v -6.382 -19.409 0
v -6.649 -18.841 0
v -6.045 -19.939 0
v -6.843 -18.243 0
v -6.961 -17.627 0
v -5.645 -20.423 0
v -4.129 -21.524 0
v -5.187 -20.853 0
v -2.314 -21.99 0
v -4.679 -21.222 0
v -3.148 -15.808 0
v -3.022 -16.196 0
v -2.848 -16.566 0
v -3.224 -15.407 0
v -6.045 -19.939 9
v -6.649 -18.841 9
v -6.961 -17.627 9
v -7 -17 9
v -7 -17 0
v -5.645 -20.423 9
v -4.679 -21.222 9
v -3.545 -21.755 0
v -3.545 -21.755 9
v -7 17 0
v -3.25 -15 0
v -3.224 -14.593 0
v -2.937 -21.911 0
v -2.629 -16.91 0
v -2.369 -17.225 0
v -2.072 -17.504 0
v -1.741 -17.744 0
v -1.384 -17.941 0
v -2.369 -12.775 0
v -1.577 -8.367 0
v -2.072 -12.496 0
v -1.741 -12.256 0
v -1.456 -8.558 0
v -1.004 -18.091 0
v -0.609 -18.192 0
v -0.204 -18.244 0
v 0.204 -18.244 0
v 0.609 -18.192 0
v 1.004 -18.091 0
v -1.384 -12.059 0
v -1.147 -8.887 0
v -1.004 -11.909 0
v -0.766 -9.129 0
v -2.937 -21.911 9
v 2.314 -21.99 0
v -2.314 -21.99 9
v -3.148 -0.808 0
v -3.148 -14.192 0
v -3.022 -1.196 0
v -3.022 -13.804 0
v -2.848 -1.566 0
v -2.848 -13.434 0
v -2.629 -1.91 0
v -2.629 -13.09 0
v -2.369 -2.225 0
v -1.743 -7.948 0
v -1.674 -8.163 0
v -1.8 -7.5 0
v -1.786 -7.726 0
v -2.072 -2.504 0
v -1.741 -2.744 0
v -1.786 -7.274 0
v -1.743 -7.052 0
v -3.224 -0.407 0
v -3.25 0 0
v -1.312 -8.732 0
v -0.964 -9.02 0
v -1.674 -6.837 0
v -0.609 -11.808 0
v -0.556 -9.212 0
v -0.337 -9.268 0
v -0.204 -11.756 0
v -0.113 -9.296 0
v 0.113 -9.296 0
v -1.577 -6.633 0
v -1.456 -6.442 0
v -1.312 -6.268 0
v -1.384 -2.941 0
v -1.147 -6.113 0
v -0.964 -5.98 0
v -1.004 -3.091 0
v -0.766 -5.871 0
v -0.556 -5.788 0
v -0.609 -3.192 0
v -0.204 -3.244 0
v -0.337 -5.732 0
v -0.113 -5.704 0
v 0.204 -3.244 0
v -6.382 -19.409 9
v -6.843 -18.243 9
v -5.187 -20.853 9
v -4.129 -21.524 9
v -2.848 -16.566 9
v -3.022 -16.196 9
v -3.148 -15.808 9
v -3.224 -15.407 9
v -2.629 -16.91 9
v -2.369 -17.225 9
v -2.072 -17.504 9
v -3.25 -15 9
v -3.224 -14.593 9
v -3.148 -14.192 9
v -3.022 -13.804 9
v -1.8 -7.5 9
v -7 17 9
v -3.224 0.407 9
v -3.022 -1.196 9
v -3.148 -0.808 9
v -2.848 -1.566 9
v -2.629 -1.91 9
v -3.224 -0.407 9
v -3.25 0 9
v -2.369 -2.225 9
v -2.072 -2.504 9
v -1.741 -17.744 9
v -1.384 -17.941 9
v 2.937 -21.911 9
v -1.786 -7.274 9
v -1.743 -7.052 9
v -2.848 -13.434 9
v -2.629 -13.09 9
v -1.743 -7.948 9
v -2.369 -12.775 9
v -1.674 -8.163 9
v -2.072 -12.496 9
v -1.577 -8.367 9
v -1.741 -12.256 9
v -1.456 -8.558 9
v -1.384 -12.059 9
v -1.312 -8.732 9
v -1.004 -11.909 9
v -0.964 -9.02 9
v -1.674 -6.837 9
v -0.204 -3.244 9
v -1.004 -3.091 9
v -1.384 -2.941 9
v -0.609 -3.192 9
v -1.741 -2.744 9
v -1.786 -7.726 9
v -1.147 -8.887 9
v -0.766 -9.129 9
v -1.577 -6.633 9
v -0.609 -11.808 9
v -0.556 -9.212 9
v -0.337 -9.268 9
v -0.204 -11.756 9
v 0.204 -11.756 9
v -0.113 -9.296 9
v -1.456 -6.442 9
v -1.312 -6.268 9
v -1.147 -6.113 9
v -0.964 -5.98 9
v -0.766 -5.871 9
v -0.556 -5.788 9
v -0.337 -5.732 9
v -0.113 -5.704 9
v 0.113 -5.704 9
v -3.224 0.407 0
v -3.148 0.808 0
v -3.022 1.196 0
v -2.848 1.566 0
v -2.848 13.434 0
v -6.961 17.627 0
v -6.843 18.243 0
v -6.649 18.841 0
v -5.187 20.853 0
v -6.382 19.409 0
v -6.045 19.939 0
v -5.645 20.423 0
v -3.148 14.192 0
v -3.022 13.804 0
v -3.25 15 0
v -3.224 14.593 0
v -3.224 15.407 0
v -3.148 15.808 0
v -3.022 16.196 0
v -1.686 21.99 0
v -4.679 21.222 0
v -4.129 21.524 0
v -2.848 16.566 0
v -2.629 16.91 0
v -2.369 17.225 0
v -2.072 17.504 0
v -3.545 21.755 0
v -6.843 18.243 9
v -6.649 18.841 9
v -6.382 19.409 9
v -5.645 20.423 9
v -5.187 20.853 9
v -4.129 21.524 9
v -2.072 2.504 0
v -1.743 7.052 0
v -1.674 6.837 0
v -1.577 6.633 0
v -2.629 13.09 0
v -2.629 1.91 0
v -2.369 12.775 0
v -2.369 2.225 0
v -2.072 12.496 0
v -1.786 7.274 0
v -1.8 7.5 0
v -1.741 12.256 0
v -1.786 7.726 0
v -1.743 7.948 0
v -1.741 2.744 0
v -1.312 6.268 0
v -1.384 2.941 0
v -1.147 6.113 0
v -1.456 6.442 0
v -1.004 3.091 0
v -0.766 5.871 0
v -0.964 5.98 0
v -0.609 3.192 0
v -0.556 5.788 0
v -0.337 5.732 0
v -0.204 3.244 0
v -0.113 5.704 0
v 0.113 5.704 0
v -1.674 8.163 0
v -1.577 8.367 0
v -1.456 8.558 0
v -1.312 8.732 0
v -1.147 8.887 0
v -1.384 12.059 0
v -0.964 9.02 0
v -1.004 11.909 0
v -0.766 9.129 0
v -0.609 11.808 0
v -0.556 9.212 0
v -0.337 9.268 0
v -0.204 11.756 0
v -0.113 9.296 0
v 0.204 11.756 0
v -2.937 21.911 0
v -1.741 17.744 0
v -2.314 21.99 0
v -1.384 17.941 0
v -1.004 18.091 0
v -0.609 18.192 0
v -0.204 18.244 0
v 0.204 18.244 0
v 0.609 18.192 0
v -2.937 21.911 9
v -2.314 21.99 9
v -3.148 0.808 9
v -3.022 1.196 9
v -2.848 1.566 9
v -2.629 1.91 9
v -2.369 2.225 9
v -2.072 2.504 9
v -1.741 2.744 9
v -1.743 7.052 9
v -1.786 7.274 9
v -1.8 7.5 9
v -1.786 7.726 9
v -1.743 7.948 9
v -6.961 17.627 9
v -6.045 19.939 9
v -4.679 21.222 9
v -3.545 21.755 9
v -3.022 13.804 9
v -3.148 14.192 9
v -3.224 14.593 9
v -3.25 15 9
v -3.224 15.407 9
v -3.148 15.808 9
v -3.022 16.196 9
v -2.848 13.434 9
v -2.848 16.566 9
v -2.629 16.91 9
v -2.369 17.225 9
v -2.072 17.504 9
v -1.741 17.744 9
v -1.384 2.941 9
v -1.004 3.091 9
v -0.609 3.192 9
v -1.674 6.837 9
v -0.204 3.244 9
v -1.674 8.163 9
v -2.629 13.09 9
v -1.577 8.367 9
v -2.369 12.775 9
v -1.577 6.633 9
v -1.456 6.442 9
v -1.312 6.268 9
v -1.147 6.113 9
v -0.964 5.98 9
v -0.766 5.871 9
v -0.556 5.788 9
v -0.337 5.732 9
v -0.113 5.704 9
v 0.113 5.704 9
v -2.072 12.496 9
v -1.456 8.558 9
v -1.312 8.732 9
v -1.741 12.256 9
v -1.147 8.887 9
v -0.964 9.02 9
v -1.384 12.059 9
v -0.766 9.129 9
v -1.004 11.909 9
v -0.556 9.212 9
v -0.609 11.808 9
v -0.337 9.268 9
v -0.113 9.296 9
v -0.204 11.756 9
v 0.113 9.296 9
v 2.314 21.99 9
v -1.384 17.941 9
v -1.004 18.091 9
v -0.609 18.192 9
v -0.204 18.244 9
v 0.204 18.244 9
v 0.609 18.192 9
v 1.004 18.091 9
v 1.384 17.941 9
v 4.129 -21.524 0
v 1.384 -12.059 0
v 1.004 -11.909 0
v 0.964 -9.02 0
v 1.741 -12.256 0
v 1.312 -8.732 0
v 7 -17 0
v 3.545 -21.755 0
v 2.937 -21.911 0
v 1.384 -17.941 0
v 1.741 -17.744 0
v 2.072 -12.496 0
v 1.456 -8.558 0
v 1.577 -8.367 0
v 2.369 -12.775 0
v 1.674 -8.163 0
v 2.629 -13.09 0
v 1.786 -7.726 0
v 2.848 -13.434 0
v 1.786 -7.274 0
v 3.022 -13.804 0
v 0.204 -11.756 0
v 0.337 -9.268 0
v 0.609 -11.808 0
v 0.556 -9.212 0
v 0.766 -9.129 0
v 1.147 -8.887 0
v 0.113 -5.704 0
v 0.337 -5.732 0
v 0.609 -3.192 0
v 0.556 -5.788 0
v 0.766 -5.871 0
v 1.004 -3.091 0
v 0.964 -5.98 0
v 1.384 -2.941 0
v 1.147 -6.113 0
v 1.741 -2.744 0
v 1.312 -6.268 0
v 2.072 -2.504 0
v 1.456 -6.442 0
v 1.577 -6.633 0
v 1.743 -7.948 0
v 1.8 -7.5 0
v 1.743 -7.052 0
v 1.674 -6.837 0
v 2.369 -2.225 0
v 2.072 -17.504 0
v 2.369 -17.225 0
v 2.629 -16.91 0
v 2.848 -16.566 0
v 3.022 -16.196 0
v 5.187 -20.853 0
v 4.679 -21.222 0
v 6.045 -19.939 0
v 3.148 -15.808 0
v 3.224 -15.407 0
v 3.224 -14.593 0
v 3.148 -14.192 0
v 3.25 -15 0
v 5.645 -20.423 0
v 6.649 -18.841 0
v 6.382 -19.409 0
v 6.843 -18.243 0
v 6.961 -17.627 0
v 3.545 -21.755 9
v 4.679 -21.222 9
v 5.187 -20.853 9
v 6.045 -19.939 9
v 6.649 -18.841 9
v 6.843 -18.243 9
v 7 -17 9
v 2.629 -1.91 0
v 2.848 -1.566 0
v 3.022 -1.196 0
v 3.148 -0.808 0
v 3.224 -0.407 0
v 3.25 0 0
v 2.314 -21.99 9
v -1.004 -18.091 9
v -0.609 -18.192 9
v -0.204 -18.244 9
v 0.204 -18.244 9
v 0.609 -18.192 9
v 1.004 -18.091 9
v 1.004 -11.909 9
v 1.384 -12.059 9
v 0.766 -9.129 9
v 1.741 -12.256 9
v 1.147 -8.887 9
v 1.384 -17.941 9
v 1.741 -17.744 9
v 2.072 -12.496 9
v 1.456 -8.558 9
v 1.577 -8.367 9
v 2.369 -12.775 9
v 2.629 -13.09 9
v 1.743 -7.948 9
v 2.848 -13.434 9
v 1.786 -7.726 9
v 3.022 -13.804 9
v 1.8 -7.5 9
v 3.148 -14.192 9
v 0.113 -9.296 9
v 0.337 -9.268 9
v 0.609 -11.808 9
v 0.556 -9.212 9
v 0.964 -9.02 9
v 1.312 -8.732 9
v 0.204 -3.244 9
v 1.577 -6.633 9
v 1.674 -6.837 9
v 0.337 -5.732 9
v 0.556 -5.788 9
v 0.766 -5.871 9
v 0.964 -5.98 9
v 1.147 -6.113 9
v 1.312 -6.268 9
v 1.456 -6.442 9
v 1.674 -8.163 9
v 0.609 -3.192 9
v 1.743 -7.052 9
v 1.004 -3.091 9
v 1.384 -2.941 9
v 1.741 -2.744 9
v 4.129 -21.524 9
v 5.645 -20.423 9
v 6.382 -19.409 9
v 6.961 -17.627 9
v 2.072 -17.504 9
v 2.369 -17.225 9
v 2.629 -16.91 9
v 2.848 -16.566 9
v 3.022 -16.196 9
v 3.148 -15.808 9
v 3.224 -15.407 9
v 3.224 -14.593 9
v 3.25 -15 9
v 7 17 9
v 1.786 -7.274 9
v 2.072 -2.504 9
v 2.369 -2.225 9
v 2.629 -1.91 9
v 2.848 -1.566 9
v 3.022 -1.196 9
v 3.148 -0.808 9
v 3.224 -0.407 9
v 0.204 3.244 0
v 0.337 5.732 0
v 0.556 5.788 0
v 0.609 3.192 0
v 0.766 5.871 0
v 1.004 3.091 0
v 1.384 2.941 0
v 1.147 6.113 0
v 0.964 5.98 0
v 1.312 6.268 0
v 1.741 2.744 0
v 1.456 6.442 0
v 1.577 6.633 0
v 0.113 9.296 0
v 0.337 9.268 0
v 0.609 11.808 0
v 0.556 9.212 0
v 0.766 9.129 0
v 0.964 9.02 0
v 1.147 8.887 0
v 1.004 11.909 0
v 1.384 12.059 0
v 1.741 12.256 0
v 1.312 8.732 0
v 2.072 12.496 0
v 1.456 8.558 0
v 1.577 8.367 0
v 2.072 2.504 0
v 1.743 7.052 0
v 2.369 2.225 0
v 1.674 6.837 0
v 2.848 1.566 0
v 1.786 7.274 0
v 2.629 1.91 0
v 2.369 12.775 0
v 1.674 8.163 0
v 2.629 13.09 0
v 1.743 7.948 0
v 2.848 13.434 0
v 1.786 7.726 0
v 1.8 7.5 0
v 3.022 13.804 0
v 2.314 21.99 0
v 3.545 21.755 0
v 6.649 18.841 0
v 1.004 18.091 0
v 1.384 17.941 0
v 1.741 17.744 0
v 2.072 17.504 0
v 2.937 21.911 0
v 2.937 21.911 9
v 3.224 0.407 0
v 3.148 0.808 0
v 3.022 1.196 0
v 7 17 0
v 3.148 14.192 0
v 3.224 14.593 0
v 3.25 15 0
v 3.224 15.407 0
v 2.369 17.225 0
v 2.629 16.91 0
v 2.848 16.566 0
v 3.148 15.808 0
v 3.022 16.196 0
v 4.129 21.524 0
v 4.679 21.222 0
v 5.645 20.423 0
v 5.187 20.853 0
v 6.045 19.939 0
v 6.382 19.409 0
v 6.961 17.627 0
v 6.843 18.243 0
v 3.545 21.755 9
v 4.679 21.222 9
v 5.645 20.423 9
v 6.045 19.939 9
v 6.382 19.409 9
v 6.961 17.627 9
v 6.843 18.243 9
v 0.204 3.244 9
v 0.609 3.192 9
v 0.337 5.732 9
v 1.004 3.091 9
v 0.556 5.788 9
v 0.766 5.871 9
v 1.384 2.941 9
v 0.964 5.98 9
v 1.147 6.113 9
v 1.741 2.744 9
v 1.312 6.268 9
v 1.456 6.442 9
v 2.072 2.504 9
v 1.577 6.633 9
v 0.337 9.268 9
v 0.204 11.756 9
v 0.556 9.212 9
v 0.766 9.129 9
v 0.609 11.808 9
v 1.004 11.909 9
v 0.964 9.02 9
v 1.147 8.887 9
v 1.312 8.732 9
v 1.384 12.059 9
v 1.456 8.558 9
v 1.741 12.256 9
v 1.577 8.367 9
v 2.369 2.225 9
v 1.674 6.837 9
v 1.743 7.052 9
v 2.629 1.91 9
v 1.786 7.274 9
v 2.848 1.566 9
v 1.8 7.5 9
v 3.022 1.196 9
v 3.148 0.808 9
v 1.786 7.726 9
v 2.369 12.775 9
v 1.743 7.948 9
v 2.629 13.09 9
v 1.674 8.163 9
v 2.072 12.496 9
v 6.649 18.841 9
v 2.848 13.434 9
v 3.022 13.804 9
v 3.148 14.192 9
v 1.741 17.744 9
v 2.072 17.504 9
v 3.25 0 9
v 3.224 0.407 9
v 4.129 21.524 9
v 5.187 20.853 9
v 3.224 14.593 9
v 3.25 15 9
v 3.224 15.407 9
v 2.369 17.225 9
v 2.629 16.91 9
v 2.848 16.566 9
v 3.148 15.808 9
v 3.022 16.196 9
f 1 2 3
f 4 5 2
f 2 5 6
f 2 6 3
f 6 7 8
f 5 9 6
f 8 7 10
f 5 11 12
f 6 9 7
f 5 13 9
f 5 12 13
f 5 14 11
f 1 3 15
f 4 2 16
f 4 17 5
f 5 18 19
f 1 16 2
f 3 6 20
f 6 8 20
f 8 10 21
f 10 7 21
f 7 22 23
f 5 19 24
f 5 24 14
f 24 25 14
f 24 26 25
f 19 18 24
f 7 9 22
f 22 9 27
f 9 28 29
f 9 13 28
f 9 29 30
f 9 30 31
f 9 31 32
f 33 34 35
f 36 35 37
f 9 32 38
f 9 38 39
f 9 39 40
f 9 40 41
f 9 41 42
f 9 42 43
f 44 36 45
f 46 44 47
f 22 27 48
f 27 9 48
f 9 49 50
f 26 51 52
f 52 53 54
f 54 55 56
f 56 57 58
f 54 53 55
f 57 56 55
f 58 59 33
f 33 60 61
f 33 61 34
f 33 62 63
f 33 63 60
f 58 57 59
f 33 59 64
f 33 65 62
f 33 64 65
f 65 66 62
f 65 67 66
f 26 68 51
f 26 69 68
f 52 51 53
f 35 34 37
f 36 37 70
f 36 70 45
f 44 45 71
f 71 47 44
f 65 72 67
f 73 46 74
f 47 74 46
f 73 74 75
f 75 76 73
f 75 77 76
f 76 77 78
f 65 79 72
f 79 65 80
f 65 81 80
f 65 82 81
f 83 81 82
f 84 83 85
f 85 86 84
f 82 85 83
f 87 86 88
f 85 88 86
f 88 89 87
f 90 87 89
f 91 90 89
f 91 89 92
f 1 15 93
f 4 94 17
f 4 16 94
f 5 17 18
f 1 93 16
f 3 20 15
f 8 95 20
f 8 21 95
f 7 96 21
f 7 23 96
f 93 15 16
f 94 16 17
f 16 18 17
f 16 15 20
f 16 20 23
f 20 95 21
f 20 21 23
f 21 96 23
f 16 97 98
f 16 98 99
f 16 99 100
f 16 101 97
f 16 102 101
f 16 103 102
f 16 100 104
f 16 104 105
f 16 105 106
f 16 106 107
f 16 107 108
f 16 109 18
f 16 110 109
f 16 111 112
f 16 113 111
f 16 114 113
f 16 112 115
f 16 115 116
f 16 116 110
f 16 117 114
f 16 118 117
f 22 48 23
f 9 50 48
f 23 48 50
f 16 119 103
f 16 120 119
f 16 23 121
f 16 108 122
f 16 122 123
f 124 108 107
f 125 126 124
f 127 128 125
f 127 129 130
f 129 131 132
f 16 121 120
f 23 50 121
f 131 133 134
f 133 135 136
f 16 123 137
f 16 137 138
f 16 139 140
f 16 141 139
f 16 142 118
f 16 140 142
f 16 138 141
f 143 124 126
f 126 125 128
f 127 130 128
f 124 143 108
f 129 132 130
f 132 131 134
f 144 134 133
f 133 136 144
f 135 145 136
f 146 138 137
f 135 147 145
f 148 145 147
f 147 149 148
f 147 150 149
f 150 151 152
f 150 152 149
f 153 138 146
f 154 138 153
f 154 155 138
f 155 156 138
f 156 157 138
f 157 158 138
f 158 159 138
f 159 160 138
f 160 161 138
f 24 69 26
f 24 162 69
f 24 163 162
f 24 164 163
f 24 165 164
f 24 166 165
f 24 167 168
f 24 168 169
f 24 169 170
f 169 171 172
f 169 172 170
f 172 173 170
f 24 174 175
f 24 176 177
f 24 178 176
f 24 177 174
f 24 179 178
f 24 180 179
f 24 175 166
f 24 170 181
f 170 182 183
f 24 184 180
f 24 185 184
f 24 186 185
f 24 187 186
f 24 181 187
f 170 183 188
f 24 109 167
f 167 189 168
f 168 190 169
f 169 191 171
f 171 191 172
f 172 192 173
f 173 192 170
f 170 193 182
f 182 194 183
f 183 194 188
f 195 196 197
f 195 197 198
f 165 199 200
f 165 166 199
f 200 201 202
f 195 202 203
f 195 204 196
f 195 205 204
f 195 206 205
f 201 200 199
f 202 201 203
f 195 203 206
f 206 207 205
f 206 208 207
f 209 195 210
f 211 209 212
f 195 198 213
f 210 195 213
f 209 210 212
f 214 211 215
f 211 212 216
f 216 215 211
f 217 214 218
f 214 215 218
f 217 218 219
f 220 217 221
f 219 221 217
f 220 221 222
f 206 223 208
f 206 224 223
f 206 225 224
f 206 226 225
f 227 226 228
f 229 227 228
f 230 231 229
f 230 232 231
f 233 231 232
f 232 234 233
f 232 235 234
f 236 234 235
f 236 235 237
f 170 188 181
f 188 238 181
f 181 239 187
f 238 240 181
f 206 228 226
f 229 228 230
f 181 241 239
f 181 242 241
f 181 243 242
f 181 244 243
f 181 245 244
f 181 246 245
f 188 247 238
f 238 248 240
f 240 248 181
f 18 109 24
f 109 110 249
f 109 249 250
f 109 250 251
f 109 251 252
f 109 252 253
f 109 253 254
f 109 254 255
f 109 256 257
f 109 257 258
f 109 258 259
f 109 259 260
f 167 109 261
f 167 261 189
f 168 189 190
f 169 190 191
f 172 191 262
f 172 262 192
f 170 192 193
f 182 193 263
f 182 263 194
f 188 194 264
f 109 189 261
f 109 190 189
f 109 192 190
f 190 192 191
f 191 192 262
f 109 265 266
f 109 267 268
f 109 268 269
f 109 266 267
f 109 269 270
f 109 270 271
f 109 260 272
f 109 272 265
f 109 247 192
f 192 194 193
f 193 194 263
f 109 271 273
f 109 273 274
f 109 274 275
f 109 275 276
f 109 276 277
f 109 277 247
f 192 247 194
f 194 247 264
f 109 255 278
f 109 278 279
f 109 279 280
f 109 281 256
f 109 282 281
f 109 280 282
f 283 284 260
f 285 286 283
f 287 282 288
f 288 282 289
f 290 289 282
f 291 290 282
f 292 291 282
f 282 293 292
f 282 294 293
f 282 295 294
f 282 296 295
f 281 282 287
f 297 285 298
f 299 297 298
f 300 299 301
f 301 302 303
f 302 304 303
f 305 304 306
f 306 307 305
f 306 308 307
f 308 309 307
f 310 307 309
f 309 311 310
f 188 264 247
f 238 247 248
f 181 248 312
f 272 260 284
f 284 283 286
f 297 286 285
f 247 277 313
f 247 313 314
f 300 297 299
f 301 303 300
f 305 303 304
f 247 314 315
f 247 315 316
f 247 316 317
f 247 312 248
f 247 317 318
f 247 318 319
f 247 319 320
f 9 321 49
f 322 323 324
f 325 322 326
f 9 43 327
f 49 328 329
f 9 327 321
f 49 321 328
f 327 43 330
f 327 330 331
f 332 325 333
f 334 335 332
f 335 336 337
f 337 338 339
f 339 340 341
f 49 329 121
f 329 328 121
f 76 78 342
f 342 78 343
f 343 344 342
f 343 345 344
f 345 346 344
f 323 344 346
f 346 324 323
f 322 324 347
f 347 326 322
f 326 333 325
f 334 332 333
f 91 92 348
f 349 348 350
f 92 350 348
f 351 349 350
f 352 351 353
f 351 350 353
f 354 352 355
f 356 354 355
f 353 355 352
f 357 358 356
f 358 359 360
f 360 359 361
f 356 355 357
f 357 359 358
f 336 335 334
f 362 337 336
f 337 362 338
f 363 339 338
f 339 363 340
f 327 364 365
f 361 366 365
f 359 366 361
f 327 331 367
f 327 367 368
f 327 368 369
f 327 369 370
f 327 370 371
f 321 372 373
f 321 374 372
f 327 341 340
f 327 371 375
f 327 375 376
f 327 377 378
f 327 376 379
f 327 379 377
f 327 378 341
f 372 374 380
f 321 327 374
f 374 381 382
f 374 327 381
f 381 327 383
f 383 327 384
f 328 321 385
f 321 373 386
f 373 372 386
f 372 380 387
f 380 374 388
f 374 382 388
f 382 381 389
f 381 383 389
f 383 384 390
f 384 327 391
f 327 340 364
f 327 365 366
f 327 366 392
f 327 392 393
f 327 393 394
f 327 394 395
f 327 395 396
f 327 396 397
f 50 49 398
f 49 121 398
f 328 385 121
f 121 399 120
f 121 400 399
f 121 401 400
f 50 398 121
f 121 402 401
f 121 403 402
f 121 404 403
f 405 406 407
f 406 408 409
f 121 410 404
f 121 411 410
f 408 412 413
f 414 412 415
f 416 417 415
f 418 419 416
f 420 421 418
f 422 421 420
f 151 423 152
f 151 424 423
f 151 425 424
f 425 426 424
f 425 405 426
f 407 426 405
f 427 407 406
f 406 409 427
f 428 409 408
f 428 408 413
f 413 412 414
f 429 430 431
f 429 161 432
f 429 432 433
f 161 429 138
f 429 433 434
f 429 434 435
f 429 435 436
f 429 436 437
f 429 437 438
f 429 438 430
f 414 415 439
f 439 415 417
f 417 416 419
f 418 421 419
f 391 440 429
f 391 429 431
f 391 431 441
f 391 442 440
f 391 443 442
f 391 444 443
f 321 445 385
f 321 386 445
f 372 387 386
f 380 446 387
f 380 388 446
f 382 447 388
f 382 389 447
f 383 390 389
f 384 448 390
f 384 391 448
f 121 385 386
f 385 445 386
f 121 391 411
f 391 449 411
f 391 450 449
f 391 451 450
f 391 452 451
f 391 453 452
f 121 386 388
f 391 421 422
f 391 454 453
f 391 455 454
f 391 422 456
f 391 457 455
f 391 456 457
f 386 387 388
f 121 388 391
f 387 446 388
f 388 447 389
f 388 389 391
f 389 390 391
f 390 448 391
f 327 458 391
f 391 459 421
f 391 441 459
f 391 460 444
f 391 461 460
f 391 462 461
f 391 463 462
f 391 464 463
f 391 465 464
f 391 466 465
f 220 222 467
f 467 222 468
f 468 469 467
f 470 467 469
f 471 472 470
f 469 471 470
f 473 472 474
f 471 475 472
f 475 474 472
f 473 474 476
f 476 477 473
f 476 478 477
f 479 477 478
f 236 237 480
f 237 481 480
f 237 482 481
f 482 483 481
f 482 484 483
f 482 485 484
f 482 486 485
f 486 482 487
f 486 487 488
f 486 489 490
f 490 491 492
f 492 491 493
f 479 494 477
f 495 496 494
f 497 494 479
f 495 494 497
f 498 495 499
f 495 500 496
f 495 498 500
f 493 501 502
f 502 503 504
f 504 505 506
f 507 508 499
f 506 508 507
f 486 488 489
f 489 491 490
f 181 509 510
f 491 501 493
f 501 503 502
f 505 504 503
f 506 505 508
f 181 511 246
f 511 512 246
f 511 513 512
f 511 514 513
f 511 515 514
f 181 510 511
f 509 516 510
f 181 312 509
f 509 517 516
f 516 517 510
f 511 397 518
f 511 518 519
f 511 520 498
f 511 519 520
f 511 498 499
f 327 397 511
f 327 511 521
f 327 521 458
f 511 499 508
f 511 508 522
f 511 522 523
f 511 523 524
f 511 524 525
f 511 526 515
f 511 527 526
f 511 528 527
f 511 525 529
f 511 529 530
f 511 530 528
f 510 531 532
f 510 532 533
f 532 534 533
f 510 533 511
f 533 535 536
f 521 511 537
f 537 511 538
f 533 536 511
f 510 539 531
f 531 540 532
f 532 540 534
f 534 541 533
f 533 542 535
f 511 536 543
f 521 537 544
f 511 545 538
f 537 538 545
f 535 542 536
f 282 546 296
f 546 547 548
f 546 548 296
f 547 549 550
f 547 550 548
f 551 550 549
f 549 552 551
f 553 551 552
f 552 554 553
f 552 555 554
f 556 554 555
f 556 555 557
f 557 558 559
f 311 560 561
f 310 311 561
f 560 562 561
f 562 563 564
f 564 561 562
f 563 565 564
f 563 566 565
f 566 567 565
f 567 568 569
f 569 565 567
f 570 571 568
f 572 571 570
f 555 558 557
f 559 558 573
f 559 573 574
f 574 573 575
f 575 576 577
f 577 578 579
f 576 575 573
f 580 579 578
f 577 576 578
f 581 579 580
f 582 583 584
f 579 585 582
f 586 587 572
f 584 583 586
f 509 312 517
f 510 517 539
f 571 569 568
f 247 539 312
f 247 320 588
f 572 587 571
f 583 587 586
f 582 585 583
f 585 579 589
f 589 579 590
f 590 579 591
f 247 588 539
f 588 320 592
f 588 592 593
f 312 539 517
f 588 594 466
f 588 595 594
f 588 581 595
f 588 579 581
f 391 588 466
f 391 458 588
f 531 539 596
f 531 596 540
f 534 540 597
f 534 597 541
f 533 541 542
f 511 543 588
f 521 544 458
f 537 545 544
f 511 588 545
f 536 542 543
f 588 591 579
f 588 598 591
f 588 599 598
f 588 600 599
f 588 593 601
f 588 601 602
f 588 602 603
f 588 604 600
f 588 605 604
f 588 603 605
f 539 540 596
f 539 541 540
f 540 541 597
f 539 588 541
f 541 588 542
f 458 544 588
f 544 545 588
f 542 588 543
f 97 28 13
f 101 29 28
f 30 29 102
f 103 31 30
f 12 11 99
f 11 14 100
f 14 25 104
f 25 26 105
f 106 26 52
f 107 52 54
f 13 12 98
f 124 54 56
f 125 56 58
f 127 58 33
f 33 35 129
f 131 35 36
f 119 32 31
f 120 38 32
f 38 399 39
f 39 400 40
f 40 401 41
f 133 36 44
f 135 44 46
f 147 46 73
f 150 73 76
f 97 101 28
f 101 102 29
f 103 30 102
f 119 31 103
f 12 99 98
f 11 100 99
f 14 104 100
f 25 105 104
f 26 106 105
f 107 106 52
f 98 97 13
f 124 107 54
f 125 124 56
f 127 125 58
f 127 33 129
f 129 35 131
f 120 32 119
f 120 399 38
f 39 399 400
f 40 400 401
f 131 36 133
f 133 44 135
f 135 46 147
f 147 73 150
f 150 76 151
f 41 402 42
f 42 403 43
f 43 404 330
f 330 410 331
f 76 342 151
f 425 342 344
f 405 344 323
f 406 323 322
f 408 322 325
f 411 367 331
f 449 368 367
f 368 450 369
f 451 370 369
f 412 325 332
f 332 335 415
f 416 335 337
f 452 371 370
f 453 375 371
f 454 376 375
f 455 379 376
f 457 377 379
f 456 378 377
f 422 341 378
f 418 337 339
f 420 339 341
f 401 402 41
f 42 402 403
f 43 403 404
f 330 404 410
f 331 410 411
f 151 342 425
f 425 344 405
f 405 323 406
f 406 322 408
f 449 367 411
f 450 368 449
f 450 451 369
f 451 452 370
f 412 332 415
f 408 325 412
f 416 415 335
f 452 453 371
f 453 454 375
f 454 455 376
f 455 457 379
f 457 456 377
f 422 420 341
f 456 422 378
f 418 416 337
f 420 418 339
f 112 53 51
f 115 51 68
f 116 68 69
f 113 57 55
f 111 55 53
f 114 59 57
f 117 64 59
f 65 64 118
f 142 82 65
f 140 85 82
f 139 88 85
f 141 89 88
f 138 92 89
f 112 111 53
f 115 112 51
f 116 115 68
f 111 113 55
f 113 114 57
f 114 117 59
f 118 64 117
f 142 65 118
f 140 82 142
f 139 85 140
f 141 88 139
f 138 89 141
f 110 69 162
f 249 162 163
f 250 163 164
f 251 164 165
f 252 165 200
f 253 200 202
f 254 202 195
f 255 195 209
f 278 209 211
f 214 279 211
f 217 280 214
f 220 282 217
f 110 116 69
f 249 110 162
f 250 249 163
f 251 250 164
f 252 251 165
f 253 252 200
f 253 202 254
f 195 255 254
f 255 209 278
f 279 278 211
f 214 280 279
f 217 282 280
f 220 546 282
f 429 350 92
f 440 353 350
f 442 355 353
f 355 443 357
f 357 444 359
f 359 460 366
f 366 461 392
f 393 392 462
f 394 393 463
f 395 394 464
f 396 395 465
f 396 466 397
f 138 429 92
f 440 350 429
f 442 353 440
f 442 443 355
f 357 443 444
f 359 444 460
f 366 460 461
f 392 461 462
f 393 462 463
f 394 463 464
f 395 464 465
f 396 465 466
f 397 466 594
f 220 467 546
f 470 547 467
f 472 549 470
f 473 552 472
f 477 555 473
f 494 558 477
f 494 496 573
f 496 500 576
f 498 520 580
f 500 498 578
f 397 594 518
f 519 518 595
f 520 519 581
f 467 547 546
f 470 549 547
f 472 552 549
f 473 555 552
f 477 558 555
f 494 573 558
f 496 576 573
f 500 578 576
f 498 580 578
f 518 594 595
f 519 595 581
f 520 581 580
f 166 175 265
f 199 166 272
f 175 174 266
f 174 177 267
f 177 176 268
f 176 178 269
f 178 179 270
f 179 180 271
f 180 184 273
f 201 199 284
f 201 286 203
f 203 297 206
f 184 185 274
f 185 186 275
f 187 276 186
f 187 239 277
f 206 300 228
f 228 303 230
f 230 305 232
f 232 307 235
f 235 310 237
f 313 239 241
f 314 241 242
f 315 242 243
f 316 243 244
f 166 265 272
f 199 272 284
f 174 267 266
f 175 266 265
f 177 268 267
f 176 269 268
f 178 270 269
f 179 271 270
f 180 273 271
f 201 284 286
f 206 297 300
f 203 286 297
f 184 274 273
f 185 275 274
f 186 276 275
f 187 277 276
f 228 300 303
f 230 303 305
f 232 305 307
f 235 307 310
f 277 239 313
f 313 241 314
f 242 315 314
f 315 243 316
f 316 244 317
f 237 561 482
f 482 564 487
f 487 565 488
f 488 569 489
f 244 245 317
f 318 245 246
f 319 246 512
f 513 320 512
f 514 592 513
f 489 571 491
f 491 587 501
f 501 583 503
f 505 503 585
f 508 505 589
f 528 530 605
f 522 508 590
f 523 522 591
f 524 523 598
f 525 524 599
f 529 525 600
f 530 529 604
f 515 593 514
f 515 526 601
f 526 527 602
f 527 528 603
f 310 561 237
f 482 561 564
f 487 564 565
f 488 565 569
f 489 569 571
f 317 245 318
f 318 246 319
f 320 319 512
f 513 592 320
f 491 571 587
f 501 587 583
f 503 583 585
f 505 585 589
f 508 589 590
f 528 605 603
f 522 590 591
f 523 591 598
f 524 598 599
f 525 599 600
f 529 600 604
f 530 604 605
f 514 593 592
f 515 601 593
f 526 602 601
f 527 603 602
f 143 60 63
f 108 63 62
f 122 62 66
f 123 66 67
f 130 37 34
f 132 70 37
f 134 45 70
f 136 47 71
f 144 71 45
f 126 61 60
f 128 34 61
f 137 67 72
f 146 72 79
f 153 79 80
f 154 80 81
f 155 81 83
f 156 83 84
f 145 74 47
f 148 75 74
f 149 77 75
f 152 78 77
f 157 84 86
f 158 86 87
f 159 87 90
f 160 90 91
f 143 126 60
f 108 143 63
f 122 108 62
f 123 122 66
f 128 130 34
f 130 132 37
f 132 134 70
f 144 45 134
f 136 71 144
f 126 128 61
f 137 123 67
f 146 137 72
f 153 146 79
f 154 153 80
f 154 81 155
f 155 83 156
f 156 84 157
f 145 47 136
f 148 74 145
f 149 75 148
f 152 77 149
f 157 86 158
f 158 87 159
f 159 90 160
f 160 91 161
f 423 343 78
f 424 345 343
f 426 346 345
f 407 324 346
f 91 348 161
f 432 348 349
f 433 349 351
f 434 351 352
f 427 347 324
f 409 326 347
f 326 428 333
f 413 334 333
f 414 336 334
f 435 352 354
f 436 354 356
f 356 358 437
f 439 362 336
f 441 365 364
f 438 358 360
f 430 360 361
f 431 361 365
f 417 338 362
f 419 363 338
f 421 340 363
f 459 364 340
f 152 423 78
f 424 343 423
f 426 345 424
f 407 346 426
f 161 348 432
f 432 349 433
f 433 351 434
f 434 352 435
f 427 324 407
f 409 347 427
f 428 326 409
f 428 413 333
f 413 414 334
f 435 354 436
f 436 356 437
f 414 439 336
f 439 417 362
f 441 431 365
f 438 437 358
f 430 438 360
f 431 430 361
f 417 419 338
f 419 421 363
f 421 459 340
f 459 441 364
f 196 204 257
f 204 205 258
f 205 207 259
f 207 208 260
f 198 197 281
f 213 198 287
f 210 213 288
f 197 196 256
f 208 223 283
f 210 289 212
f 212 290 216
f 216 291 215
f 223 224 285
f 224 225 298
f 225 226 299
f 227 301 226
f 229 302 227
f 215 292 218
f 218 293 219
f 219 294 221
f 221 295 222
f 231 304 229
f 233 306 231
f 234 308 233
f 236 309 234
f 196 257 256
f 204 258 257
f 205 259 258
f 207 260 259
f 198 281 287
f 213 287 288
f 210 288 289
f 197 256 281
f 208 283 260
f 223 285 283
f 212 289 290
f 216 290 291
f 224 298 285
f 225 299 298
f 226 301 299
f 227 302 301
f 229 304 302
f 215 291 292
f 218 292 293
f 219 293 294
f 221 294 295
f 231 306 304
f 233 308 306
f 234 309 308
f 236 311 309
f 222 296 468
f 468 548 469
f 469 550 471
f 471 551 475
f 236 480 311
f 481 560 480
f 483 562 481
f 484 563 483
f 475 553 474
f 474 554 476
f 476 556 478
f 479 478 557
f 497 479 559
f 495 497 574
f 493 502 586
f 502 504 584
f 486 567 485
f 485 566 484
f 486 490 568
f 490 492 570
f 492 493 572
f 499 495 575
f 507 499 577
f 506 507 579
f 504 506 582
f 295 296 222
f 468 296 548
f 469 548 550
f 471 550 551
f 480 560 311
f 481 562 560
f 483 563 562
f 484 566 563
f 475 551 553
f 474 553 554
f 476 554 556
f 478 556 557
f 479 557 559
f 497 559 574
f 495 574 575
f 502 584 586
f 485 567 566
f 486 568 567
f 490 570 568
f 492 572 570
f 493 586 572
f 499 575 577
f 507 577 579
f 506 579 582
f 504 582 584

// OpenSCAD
$fn = 50;

difference() {
	union() {
		hull() {
			translate(v = [-2.0, 17.0, 0]) {
				cylinder(h = 9, r = 5);
			}
			translate(v = [2.0, 17.0, 0]) {
				cylinder(h = 9, r = 5);
			}
			translate(v = [-2.0, -17.0, 0]) {
				cylinder(h = 9, r = 5);
			}
			translate(v = [2.0, -17.0, 0]) {
				cylinder(h = 9, r = 5);
			}
		}
	}
	union() {
		translate(v = [0.0, -15.0, 0]) {
			translate(v = [0, 0, -100]) {
				cylinder(h = 200, r = 3.25);
			}
		}
		translate(v = [0, 0, -100]) {
			cylinder(h = 200, r = 3.25);
		}
		translate(v = [0.0, 15.0, 0]) {
			translate(v = [0, 0, -100]) {
				cylinder(h = 200, r = 3.25);
			}
		}
		translate(v = [0.0, -15.0, 0]) {
			translate(v = [0, 0, -100]) {
				cylinder(h = 200, r = 1.8);
			}
		}
		translate(v = [0.0, -7.5, 0]) {
			translate(v = [0, 0, -100]) {
				cylinder(h = 200, r = 1.8);
			}
		}
		translate(v = [0, 0, -100]) {
			cylinder(h = 200, r = 1.8);
		}
		translate(v = [0.0, 7.5, 0]) {
			translate(v = [0, 0, -100]) {
				cylinder(h = 200, r = 1.8);
			}
		}
		translate(v = [0.0, 15.0, 0]) {
			translate(v = [0, 0, -100]) {
				cylinder(h = 200, r = 1.8);
			}
		}
	}
}
